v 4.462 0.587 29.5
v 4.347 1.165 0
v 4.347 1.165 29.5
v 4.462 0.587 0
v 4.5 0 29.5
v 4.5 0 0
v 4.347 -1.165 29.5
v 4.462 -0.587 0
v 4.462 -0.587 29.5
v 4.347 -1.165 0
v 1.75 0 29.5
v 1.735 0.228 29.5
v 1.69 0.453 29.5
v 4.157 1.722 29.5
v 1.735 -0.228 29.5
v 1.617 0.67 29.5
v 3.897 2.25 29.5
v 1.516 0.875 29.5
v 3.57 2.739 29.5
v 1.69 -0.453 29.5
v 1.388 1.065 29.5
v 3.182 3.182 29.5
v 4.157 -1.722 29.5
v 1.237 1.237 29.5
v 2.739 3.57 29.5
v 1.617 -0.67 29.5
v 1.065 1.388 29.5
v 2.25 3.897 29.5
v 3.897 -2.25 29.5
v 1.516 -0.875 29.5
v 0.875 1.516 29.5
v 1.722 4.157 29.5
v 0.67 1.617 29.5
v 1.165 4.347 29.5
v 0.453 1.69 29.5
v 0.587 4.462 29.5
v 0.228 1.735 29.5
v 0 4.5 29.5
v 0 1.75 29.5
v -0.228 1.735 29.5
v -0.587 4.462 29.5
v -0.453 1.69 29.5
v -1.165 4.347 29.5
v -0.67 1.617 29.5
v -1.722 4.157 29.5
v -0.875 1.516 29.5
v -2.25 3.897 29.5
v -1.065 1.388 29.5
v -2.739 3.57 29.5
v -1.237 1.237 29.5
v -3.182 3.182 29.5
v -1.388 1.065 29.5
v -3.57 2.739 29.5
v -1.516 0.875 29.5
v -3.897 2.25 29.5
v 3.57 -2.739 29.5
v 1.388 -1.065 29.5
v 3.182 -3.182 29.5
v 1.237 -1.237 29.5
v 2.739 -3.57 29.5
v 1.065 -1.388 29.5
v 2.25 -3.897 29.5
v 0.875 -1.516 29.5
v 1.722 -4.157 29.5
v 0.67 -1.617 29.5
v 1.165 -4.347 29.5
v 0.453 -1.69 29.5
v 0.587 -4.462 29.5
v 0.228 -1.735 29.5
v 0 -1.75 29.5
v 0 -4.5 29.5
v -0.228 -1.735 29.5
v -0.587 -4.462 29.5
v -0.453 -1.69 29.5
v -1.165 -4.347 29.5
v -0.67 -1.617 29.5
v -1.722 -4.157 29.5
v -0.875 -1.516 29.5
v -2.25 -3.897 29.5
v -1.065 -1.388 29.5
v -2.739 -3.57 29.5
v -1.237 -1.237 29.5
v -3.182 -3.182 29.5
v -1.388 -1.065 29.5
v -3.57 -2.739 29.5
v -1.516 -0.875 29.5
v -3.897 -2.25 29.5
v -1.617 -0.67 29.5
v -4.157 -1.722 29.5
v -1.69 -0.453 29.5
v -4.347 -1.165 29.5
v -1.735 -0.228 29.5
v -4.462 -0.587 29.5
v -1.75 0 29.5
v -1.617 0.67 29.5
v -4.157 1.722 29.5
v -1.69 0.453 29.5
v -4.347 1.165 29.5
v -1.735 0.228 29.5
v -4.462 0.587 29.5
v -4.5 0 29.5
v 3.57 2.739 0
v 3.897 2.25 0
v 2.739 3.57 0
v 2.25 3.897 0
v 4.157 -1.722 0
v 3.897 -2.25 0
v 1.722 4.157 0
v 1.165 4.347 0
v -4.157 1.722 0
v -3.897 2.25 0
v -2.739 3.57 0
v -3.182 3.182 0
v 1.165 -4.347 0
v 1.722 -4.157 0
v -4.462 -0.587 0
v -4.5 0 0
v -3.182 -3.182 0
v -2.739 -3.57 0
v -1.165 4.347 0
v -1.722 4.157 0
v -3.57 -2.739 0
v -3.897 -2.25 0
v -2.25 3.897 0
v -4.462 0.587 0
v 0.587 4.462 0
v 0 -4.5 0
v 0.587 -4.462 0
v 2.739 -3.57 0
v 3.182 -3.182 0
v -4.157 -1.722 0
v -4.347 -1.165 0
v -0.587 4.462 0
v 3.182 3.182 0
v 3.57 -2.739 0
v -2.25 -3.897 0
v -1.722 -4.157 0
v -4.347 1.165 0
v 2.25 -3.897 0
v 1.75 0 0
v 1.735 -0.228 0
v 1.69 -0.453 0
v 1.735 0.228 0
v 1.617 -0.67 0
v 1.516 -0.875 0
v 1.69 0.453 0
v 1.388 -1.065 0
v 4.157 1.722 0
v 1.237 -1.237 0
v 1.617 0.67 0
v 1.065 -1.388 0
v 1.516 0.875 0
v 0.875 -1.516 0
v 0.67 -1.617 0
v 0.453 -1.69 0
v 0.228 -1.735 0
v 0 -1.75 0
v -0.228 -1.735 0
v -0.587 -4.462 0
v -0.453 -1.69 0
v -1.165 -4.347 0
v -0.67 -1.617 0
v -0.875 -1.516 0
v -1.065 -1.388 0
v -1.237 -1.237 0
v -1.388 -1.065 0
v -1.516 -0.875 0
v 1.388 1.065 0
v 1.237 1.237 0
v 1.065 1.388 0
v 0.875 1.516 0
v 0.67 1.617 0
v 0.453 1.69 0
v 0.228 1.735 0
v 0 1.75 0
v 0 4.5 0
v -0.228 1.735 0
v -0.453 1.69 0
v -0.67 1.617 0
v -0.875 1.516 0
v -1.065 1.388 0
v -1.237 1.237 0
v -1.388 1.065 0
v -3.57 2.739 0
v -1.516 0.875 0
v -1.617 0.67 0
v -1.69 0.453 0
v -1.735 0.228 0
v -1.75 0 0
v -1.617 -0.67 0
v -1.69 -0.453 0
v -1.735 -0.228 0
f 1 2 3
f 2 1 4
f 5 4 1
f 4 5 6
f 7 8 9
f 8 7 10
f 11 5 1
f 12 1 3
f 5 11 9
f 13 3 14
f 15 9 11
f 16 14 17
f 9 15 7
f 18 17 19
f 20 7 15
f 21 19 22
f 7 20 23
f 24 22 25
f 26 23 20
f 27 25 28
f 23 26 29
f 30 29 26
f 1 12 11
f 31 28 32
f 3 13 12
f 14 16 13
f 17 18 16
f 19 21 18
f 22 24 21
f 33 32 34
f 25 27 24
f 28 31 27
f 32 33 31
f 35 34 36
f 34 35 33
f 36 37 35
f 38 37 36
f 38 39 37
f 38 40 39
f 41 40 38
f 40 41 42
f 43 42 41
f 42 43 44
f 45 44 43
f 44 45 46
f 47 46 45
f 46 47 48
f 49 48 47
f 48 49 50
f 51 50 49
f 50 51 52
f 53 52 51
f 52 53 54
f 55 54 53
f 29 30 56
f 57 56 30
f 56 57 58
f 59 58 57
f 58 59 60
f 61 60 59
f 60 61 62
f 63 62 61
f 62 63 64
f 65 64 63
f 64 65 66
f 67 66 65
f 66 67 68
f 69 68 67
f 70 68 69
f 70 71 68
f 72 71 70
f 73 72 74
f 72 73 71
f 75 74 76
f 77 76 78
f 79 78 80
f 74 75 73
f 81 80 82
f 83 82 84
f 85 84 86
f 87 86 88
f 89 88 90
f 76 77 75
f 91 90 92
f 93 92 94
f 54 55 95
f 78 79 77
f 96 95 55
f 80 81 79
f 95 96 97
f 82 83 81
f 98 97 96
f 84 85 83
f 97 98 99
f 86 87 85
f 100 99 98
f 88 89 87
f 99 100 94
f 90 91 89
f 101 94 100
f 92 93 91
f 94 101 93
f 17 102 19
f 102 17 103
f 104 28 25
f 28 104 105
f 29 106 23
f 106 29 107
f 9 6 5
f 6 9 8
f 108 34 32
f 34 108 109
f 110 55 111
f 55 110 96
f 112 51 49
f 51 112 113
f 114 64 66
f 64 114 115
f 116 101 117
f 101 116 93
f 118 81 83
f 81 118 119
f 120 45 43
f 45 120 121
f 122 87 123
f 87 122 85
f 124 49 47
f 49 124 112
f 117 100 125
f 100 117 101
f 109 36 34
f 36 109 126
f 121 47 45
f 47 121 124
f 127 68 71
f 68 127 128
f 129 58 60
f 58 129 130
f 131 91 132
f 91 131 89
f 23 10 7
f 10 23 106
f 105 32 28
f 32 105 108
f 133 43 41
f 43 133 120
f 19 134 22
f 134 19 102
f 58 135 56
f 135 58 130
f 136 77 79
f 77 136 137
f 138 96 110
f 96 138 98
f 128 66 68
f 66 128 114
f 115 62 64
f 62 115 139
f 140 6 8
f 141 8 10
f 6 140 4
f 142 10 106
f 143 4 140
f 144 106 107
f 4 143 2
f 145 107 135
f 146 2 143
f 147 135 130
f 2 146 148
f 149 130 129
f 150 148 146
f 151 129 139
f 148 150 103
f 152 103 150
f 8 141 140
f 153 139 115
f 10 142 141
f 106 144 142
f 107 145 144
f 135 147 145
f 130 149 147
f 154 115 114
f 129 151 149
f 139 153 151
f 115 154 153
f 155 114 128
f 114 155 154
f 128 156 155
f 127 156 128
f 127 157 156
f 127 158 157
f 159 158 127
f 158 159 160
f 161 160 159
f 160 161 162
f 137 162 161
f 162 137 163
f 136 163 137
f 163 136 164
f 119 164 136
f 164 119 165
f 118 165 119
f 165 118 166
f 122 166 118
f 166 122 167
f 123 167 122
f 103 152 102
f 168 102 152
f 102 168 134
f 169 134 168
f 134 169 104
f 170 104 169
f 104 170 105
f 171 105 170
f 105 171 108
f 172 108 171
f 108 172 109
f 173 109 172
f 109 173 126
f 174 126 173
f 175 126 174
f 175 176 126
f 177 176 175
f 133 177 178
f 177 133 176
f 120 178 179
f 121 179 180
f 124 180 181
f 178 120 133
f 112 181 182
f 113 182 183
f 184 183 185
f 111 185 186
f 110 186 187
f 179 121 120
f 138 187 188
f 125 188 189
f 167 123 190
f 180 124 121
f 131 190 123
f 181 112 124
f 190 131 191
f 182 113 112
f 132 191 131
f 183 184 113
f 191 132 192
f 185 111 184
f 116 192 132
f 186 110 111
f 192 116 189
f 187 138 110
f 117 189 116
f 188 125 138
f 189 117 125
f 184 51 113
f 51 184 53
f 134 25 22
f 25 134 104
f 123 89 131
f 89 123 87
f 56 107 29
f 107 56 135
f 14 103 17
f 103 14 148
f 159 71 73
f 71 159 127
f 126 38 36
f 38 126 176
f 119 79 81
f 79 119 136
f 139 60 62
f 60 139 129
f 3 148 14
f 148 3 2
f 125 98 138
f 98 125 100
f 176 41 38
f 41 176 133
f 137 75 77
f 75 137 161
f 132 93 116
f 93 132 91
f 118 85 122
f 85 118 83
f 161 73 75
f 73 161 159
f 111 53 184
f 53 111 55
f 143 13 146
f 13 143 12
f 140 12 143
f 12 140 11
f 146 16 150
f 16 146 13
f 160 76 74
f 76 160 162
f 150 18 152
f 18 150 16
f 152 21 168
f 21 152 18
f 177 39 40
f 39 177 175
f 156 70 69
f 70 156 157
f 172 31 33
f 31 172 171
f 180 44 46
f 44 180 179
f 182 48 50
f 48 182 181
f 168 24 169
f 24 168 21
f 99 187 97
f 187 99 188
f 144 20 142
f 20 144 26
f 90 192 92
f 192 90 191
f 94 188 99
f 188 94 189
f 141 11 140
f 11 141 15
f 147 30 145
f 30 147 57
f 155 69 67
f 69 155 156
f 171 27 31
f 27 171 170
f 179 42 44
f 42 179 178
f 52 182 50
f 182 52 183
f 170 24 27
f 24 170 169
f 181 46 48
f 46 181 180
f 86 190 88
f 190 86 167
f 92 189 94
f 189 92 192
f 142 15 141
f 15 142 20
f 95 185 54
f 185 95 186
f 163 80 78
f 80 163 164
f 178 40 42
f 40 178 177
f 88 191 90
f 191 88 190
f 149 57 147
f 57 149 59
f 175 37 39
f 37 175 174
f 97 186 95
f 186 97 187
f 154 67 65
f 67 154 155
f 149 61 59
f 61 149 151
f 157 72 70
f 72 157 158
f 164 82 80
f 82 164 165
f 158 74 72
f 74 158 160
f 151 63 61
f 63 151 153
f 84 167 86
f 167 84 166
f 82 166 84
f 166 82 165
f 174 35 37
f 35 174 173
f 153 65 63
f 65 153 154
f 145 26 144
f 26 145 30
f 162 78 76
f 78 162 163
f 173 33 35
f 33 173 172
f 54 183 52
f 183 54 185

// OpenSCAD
// file: parameters.scad
// =============================================================================
// Gen-BO — nightly 2026-10-07 (physics_scorer, honest magpylib watts)
// Flush seat + wider copper + tight assists: the magnets sit on the steel in 5.00 mm through-pockets (carrier = magnet height, recess 0 instead of 0.10 mm), so the magnet faces are 0.2 mm closer while still exactly 0.50 mm from the wound envelope; the bobbin lip beyond the copper is trimmed 1.0 → 0.8 mm (still the 0.8 mm wall minimum, stator web still 1.2 mm), which widens each copper sector by ~0.6° on 28–70 mm × 18.0 mm-build bobbins; and the diametric Ø5 assists are pulled in to R43/50/57 (±7 mm) where they add most flux under the copper. Same Ø134 × 4.76 mm steel discs as Gen-BL.
// Clocking 0 deg (magnets N facing S) + D-flat keyed bore + index notch + flip-symmetric hole map.
// Windable 2-piece bobbin; turns = physics_scorer turns_fit; copper only between flanges.
// Steel back-iron: 2× Ø134 × 4.76 mm (3/16") mild-steel discs (steel_backiron_disc.dxf); magnets sit ON the steel
// (through-pockets) -> score with --back-iron.
// =============================================================================
topology            = "dual_rotor";

// --- Wire / winding (physics_scorer winding-fit) -------------------------------
wire_awg            = 26;
wire_od             = 0.45;     // insulated OD mm (bare 0.405)
fill_realistic      = 0.65;     // insulated-wire area / window (DENSE layered wind with a jig; scorer cap 0.65)
turns               = 595;       // = physics_scorer turns_fit (do NOT raise)
coil_former_type    = "bobbin";
coil_core_inset     = 18.00;     // radial copper build: hub = copper boundary inset by this
wind_build_axial    = 0.0;      // nothing proud of the flanges
wind_build_radial   = 0.0;

// --- Bobbin (base + lid) ---------------------------------------------------------
coil_id_r           = 28.00;    // copper boundary sector
coil_od_r           = 70.00;
span_deg            = 53.24;    // = pitch - 2*asin((wall+0.85)/coil_id_r) -> >=1.2 mm stator web
former_web          = 8.10;     // copper height between flanges (TALL copper: steel keeps Bz up)
flange_t            = 0.80;     // >= 0.8 mm FDM wall rule (tall winds push on the flanges)
wall                = 0.80;     // flange lip beyond copper
former_bare_h       = former_web + 2 * flange_t;
coil_envelope_h     = former_bare_h + 2 * wind_build_axial;
tab_w               = 7.0;
tab_len             = 7.0;
tab_h               = former_bare_h / 2;
pin_d               = 1.9;      // 1.75 mm filament locating pin
coil_mount_r        = coil_od_r + 0.2 + 4.0;
lead_y              = 1.6;
lead_slot_w         = 0.9;
lead_groove_d       = 0.6;

// --- Gap -------------------------------------------------------------------------
run_clear           = 0.50;     // rotor face -> flange
gap_spacer_h        = run_clear + wind_build_axial;
m2m                 = coil_envelope_h + 2 * run_clear;   // rotor face to rotor face (= gap_sleeve length)

// --- Stator ----------------------------------------------------------------------
coil_stations       = 6;
bay_clear           = 0.25;
stator_thick        = former_bare_h;                        // bobbins flush both faces
stator_od           = 158;
shaft_clear_stator  = 14.0;     // stator is static; gap sleeve OD 12 spins inside

// --- Rotor(s) --------------------------------------------------------------------
magnet_Br           = 1.43;     // N52
magnet_d_large      = 20.0;
magnet_h_large      = 5.0;      // one O20x5 per pocket
magnet_h_small      = 5.0;      // one O5x5 per pocket
halbach_magnetisation = "diametric"; // O5x5 assist magnets MUST be DIAMETRICALLY magnetised (tangential)
rotor_b_same_axis   = true;     // same-index magnets share one axis: N faces S across the gap
large_pocket_d      = 20.3;
small_pocket_d      = 5.3;
pocket_h            = 5.00;     // THROUGH the carrier: magnet back face sits on the steel disc (FLUSH seat: carrier = magnet height, magnet face level with the rotor face)
large_n             = 8;
R_large             = 50.0;
R_small_inner       = 43.0;
R_small_mid         = 50.0;
R_small_outer       = 57.0;
small_r_list        = [R_small_inner, R_small_mid, R_small_outer];   // O5 pockets between poles
carrier_od          = 134.0;
carrier_thick       = pocket_h;
hub_h               = 12.0;     // > steel_t + insert: radial set-screw clears the steel
hub_od              = 24.0;     // slim hub so the M4 brace rods fit at R~18 inside the coil ring
hub_insert_d        = 4.0;      // M3 heat-set insert, radial, bears on the D-flat
rotor_b_offset_deg  = 0.0;      // CLOCKING: magnets directly opposite
shaft_key           = "dflat";
dflat_depth         = 0.5;      // 8 mm shaft with 0.5 mm flat (7.5 across flat)
index_notch_d       = 3.0;

// --- Steel back-iron (buyable laser-cut) -------------------------------------------
steel_t             = 4.76;      // mild steel thickness (image method ignores it; sized from steel_flux.py so the return path stays well below saturation)
steel_center_hole   = 26.0;     // slips over the rotor hub (OD 24)
steel_od            = carrier_od;   // steel disc OD = rotor carrier OD

// --- Modular MAX interface ----------------------------------------------------------
shaft_bore          = 8.35;
dflat_x             = 4.0 - dflat_depth + (shaft_bore - 8.0) / 2;
bearing_d           = 21.85;
bearing_h           = 7.2;
m3_clear            = 3.5;
bolt_r_inner        = 30.0;     // M3 steel-disc clamp bolts (inside the magnet ring)
bolt_n_inner        = 4;
bolt_inner_angles   = [0, 90, 180, 270];
bolt_r_outer        = 63.0;     // M3 steel-disc clamp bolts (outside the magnet ring)
bolt_outer_angles   = [45, 135, 225, 315];
flange_bolt_r       = 73.0;     // frame rods: OUTSIDE the rotor OD (rotors spin inside them)
flange_bolt_n       = 6;
flange_bolt_offset  = 30.00;    // between coil stations -> never cuts a lead groove/tab
brace_r             = 18.0;
brace_d             = 4.3;      // temporary M4 jack rods (assembly only)
brace_n             = 4;
brace_angles        = [45, 135, 225, 315];          // flip-symmetric

spacer_pad_od       = 14.0;
spacer_pad_id       = m3_clear;
endbell_od          = 158;
endbell_thick       = 8.0;
endbell_shaft_clear = 10.0;
collar_h            = 10.0;
standoff_od         = 9.0;
frame_standoff_h    = run_clear + carrier_thick + hub_h + collar_h + 2.0;
sleeve_od           = 12.0;
plate_max_mm        = 410;

$fn = 64;
// main file
// Gen-BO — frame standoff tube between stator and an endbell, on each M3 frame rod (outside rotor OD).
// Print x12. Height = frame_standoff_h (rotor + steel + hub + collar + running clearance).
include <parameters.scad>;
$fn = 48;
difference() {
    cylinder(d=standoff_od, h=frame_standoff_h);
    translate([0, 0, -0.1]) cylinder(d=m3_clear, h=frame_standoff_h + 0.2);
}
